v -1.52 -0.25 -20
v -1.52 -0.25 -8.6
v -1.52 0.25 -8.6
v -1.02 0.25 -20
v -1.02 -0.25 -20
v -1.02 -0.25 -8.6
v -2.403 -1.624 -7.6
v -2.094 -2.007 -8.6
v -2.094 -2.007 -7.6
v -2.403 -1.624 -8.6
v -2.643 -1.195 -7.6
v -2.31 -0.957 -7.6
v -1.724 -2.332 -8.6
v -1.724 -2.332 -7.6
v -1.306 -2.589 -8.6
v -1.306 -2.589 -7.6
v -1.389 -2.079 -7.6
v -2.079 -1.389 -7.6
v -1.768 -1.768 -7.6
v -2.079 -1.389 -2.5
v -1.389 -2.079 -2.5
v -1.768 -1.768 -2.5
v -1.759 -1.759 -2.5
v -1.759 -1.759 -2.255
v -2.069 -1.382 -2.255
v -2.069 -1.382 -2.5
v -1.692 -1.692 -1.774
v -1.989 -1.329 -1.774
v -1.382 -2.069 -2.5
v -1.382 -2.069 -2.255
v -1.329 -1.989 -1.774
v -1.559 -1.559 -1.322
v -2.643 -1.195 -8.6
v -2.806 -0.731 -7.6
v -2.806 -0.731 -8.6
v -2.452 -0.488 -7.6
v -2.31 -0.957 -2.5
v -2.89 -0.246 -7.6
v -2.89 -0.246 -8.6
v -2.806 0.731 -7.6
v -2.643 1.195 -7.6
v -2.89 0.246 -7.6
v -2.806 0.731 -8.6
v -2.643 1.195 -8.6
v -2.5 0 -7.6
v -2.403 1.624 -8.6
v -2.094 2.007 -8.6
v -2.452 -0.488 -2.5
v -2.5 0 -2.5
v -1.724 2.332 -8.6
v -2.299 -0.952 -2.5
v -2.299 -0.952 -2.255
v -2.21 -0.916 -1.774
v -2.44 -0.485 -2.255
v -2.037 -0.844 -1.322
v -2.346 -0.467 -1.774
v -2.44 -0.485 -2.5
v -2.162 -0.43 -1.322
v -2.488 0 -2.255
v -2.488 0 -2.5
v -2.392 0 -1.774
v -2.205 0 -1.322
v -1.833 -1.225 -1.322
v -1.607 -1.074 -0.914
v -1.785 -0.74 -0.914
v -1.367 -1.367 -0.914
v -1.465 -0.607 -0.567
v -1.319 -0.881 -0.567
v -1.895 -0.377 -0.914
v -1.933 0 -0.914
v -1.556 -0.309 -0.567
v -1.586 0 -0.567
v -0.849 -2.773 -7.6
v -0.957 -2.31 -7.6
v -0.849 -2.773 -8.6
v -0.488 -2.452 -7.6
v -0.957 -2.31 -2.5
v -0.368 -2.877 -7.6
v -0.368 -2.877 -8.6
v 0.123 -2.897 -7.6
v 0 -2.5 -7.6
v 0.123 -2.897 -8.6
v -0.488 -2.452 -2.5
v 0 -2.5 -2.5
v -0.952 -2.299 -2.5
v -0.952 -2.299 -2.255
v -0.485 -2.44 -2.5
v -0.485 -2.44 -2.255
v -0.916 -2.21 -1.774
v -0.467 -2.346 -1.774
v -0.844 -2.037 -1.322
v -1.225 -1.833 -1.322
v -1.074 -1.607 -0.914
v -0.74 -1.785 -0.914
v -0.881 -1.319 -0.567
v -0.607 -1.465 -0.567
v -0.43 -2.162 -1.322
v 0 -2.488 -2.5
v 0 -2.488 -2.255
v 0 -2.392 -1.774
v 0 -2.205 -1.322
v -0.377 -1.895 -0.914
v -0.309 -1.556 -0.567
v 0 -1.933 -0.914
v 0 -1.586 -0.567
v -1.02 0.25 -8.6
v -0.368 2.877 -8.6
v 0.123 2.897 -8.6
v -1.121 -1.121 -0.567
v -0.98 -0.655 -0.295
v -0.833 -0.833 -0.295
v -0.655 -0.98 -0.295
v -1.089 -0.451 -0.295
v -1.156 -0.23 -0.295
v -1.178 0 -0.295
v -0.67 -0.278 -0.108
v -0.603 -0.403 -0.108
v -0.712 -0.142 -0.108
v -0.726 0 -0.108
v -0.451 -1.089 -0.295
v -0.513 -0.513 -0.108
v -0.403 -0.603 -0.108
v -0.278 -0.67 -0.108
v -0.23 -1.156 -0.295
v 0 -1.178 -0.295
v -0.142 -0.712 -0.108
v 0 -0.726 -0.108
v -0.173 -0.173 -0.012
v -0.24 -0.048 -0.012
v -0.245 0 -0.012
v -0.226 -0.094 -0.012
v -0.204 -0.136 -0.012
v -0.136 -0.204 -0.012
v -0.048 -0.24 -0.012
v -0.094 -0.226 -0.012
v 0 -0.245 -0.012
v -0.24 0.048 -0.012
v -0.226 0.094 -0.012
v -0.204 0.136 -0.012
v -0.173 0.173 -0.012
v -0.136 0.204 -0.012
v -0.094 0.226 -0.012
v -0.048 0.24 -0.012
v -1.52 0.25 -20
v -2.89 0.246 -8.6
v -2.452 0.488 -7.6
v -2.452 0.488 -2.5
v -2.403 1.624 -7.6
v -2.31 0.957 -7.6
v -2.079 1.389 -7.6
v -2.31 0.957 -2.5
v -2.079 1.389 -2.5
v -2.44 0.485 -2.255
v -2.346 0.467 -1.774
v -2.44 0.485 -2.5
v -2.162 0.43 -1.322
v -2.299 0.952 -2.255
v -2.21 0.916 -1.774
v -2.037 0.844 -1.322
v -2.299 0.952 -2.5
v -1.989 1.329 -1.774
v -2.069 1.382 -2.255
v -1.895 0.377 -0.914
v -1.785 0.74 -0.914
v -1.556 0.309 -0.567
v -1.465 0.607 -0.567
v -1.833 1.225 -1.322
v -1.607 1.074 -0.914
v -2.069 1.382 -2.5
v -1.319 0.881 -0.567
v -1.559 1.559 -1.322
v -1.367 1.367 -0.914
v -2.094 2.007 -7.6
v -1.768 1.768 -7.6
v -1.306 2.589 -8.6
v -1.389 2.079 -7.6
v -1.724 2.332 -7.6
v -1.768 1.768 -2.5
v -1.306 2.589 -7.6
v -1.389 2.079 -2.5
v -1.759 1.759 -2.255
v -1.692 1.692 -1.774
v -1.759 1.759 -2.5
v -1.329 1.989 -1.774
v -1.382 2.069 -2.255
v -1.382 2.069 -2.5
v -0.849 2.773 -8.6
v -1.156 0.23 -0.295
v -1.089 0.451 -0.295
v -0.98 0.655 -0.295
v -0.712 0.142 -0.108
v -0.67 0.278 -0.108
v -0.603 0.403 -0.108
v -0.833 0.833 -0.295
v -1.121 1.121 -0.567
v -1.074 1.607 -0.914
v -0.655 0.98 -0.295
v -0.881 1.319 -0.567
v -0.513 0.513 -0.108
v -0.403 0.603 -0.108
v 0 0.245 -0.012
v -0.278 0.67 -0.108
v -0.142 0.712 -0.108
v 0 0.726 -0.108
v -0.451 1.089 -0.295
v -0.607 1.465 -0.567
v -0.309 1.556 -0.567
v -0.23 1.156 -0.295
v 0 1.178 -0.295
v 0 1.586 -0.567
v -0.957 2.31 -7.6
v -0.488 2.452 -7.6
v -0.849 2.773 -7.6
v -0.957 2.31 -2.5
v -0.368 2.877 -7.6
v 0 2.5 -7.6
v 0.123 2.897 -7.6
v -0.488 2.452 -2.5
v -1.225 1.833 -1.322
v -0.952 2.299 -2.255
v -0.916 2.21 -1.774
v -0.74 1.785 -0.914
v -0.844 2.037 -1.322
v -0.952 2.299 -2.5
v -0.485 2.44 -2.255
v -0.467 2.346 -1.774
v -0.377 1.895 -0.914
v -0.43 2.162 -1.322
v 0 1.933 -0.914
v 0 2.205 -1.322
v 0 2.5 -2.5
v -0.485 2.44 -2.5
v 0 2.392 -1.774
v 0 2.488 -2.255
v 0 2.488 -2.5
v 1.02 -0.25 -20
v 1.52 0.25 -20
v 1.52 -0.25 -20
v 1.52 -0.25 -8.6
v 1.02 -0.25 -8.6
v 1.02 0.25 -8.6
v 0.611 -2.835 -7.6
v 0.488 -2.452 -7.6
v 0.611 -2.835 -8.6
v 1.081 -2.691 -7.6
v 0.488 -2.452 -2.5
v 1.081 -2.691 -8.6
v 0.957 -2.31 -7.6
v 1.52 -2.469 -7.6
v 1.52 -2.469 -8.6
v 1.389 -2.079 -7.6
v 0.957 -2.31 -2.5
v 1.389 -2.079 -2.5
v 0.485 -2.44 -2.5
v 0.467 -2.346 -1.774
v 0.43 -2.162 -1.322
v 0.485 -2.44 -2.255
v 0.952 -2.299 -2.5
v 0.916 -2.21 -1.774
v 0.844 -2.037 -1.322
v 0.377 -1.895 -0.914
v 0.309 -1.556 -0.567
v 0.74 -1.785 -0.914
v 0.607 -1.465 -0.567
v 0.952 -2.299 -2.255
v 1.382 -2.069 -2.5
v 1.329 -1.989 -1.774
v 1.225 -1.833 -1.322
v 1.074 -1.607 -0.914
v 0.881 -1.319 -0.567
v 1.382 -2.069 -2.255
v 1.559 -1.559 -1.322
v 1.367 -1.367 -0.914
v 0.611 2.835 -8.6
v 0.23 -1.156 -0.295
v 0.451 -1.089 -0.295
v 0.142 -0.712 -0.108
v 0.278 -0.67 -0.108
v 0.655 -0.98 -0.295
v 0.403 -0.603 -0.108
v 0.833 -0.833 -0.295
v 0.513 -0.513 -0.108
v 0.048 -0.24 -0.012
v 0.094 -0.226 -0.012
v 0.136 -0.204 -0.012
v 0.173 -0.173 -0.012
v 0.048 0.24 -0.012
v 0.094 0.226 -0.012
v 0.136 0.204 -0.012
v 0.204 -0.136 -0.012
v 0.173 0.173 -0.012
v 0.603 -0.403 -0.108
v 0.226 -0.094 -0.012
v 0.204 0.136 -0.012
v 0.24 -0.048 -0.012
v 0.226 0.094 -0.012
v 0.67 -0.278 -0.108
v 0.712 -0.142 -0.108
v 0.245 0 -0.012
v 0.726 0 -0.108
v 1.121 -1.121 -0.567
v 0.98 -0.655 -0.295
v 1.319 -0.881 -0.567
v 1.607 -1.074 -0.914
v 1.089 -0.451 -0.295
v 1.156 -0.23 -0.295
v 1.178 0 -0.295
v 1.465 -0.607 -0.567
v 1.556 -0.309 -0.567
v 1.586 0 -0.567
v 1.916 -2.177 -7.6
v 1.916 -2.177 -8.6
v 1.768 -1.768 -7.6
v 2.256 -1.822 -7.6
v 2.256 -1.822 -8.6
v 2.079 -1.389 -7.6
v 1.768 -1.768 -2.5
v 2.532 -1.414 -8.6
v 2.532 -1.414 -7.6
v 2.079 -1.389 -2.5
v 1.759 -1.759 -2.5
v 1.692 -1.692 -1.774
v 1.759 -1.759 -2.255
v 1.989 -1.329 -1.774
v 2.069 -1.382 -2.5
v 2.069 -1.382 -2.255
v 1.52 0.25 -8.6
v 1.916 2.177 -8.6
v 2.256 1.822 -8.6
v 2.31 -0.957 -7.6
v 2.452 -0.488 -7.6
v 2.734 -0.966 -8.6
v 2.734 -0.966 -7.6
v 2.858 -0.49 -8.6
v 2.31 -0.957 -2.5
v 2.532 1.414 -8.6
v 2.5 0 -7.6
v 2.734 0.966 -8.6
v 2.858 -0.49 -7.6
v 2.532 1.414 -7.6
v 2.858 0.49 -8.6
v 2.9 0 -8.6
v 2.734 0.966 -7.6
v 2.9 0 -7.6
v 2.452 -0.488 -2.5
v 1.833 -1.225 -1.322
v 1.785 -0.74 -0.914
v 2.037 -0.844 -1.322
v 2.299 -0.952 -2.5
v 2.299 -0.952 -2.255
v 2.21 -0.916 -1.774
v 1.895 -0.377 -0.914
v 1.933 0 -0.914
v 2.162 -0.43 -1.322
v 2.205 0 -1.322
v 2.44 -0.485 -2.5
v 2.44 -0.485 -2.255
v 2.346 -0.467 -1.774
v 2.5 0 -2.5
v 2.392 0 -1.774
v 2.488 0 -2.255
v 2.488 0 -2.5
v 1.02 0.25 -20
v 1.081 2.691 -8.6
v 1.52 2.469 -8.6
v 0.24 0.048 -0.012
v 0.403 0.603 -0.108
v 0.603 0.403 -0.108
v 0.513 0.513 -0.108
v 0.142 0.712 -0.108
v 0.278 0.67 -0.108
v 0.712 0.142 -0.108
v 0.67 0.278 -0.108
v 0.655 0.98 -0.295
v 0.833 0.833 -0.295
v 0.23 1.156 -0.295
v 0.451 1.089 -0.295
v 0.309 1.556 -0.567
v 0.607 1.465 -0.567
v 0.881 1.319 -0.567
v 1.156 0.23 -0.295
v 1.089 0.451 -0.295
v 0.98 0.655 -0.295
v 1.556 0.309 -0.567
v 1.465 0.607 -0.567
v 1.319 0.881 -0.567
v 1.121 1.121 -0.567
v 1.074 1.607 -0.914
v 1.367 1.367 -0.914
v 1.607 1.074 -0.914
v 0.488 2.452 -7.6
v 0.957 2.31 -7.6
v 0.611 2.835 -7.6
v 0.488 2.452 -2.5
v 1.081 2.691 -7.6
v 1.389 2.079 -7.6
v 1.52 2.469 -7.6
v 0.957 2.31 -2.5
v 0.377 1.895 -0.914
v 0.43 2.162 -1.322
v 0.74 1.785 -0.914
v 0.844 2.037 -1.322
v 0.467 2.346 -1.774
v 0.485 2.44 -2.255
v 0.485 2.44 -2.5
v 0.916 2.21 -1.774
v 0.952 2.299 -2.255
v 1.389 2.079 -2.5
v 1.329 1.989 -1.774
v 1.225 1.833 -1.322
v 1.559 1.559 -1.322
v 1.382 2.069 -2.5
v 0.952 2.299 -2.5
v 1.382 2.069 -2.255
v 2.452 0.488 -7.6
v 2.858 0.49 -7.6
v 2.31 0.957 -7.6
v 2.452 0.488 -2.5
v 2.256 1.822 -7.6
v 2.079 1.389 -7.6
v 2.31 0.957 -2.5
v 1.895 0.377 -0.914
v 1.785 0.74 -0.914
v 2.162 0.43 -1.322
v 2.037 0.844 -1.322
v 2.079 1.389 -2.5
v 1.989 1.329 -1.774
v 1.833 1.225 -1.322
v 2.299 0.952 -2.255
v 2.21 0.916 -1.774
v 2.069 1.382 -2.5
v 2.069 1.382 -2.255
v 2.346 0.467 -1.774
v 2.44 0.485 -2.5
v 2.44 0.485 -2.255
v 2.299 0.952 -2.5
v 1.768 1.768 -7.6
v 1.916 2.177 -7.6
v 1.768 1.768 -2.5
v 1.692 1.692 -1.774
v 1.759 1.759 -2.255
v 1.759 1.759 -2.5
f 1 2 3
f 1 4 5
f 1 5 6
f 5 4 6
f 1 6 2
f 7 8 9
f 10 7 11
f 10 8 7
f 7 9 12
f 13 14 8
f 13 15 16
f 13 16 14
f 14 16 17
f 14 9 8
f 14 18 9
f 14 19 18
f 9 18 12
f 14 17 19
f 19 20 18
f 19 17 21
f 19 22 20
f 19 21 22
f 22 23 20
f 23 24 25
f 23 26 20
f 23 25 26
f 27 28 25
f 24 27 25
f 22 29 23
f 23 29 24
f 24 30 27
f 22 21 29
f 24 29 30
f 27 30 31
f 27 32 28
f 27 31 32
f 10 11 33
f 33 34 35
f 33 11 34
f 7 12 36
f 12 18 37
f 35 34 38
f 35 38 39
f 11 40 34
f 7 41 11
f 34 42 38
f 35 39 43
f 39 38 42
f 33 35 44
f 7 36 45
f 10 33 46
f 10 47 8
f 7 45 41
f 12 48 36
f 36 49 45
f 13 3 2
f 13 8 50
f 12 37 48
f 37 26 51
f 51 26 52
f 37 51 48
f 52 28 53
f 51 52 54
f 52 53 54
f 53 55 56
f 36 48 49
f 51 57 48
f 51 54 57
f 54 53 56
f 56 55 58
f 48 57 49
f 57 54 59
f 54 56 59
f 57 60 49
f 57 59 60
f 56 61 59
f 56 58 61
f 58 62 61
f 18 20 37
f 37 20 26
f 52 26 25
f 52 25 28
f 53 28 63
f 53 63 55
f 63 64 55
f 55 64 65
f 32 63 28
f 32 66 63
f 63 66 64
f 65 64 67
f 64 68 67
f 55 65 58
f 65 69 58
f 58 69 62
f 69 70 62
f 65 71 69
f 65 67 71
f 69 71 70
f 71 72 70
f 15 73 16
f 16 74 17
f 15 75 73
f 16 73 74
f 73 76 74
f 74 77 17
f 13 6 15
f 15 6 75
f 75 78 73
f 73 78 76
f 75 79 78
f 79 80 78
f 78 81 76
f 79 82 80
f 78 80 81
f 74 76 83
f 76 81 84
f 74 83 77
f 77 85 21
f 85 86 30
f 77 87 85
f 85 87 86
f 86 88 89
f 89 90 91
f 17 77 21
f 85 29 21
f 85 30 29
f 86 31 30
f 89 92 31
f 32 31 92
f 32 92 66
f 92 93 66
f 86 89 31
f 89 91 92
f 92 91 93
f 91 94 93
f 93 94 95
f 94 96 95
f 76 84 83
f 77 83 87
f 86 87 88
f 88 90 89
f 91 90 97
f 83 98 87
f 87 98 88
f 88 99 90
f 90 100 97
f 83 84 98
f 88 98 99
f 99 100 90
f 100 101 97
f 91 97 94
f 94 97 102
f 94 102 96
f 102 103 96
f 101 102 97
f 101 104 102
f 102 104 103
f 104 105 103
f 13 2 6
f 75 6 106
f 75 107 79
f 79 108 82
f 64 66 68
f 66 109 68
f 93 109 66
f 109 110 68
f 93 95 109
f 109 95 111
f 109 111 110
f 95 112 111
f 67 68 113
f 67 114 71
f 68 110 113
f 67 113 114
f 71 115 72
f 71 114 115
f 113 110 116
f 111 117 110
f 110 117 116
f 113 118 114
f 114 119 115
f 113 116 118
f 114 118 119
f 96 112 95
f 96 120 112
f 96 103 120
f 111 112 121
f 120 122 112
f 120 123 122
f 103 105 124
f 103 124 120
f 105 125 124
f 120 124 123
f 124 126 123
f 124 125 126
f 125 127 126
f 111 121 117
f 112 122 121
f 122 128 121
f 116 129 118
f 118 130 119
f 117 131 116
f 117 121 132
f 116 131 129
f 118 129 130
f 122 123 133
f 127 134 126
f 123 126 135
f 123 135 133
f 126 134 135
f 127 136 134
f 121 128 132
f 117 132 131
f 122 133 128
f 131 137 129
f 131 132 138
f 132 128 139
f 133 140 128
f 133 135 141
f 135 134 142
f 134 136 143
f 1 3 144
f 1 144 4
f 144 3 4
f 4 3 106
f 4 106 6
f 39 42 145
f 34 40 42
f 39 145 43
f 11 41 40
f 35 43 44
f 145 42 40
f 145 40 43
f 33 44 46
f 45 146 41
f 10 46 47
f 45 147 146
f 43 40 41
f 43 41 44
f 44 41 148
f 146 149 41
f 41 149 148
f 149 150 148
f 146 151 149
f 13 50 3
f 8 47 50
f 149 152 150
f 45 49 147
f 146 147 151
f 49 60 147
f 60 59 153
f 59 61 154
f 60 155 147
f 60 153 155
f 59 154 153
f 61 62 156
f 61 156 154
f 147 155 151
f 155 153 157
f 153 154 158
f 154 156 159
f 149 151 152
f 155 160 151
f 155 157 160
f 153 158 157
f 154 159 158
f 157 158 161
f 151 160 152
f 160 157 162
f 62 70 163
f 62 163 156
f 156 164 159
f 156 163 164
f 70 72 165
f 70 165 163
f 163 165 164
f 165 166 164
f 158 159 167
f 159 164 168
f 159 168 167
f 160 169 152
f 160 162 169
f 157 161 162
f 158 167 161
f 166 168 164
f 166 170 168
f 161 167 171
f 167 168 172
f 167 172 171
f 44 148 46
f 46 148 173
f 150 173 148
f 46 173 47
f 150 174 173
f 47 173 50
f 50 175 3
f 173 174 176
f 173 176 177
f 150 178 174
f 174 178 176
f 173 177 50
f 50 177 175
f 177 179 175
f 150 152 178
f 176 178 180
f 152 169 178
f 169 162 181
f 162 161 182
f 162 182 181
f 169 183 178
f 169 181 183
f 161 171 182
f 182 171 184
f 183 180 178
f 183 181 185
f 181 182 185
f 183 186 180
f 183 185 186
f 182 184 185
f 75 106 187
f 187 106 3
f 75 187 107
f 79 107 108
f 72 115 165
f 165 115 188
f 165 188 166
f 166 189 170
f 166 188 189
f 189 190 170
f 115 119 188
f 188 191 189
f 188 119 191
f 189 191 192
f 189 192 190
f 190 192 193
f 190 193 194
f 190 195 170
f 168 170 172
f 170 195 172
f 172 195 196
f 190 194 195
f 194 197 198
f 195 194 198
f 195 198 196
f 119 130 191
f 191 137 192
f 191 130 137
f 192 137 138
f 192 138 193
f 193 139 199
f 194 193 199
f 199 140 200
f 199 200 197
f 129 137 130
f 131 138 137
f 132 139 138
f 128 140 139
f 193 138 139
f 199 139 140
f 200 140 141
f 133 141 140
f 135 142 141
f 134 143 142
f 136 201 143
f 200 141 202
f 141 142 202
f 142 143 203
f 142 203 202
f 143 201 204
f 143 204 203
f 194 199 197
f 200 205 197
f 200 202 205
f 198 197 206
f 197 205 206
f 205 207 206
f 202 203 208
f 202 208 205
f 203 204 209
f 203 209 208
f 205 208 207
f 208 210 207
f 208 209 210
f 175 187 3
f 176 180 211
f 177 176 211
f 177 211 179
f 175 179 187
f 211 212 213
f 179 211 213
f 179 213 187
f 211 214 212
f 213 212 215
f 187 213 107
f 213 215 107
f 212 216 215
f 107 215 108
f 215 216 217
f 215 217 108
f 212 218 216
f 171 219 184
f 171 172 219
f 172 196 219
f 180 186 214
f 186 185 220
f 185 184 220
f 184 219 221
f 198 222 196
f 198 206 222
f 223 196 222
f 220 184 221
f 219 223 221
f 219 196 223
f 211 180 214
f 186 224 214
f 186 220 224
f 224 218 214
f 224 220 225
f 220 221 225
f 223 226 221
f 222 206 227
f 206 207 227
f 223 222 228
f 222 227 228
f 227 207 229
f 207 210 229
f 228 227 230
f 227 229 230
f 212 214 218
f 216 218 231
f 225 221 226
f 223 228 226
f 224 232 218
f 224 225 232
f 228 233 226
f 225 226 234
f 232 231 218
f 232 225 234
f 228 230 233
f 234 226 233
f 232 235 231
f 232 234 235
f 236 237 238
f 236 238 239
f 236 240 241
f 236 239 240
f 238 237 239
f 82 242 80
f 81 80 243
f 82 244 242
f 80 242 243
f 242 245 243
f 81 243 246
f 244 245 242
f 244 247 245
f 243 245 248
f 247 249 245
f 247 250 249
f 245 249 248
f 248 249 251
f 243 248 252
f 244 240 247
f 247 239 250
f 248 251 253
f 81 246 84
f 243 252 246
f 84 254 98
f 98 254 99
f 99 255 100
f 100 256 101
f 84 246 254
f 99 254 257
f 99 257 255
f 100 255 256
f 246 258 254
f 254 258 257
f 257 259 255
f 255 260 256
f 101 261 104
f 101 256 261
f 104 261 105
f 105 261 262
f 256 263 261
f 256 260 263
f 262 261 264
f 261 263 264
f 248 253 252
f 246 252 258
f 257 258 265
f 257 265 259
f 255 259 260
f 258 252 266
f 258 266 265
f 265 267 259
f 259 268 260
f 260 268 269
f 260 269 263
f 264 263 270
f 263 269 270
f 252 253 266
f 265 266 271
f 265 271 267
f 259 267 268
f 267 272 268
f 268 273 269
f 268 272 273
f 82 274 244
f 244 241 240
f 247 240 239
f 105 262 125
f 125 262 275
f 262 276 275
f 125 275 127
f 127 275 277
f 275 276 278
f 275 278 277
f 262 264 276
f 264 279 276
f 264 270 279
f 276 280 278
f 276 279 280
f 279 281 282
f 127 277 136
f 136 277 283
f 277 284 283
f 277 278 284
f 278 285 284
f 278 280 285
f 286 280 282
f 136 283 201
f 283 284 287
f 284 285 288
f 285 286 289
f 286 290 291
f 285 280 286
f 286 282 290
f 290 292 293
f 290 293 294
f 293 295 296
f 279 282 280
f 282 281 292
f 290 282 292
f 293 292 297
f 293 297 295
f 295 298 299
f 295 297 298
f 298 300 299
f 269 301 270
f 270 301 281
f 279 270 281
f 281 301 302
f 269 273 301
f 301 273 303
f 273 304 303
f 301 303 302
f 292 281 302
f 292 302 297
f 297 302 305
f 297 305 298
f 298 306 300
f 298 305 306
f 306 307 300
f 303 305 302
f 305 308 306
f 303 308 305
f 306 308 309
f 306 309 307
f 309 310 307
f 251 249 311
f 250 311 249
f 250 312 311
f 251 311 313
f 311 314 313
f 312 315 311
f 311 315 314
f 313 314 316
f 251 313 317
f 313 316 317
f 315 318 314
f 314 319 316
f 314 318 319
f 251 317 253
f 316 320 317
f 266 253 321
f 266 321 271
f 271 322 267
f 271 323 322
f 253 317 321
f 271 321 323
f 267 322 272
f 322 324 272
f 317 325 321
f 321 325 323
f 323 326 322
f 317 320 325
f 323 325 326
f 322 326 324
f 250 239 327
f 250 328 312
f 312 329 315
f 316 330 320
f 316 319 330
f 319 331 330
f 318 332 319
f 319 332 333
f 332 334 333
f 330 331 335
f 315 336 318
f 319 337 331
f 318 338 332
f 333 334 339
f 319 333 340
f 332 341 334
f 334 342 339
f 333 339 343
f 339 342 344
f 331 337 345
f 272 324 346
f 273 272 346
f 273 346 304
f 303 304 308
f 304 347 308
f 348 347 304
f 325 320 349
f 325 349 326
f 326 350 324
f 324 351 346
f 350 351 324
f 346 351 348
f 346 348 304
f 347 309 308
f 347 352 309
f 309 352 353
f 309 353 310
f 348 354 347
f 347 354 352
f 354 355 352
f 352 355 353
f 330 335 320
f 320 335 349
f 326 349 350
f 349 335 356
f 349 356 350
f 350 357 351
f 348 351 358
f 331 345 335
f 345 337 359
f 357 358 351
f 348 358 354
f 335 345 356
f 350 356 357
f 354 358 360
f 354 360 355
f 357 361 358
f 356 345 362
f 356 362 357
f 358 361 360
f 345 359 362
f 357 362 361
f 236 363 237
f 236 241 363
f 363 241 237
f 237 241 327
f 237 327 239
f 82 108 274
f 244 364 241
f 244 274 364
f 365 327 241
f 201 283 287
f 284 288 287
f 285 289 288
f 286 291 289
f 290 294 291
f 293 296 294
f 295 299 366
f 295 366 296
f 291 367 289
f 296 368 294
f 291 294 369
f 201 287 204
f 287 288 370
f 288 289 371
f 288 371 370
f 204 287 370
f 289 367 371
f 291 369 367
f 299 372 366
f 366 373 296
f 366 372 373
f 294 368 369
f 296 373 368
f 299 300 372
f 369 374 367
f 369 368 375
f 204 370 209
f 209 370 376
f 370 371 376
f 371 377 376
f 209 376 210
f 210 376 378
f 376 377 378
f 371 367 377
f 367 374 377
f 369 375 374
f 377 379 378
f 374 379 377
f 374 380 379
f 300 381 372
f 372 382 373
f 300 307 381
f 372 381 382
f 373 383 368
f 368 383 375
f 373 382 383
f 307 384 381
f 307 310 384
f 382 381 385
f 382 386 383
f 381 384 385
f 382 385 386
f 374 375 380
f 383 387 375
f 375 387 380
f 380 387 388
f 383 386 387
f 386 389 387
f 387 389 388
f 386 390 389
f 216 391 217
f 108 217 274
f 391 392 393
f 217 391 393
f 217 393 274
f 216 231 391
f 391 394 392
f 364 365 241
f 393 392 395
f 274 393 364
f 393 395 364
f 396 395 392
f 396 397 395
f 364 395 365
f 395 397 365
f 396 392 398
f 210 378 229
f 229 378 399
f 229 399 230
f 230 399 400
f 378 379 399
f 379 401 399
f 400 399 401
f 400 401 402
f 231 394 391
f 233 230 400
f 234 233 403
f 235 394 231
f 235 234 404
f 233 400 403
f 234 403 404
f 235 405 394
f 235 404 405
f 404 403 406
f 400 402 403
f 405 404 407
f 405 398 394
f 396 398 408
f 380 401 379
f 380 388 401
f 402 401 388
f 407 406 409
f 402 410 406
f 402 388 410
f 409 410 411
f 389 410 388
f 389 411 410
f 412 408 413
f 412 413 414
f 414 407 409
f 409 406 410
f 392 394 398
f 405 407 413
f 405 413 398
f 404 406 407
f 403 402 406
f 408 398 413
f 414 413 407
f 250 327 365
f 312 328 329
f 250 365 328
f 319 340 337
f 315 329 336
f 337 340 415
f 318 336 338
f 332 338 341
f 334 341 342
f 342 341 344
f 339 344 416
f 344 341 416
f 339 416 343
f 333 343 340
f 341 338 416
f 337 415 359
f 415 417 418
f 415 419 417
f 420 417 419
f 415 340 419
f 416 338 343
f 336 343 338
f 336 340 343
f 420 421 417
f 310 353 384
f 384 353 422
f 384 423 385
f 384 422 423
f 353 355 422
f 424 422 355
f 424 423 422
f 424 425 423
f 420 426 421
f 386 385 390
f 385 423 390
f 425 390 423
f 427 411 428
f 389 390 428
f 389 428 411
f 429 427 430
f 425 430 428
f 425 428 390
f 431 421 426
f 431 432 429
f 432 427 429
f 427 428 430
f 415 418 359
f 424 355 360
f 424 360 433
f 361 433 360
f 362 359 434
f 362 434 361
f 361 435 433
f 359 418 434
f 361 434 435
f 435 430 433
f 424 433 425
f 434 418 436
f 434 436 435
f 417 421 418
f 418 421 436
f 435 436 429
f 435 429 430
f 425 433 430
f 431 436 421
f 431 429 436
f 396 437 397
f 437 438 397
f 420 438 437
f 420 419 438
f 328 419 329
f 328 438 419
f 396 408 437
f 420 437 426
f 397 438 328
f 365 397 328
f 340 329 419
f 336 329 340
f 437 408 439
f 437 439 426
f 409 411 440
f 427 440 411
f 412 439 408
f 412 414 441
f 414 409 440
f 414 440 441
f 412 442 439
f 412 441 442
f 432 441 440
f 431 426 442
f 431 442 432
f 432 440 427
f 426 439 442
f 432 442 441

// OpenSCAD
// file: ../lib/lib.scad
// Shared helpers. Include AFTER params.scad (needs TOL, M3_* etc.).
$fa = 4; $fs = 0.5;

module rrect(size, r) {            // 2D rounded rectangle, centred
    r2 = min(r, min(size[0], size[1]) / 2 - 0.001);
    offset(r = r2) square([size[0] - 2 * r2, size[1] - 2 * r2], center = true);
}
module rbox(size, r, center_xy = true) {   // box with rounded vertical edges
    translate(center_xy ? [0, 0, 0] : [size[0] / 2, size[1] / 2, 0])
        linear_extrude(size[2]) rrect([size[0], size[1]], r);
}
module rbox_at(x0, x1, y0, y1, z0, z1, r = 0.01) {
    translate([(x0 + x1) / 2, (y0 + y1) / 2, z0]) rbox([x1 - x0, y1 - y0, z1 - z0], r);
}
module box_at(x0, x1, y0, y1, z0, z1) { translate([x0, y0, z0]) cube([x1 - x0, y1 - y0, z1 - z0]); }

module ring(ro, ri, h) { difference() { cylinder(r = ro, h = h); translate([0, 0, -1]) cylinder(r = ri, h = h + 2); } }
module ring_sector(ro, ri, h, a0, a1) {
    intersection() {
        ring(ro, ri, h);
        linear_extrude(h) polygon(concat([[0, 0]], [for (a = [a0 : (a1 - a0) / 24 : a1]) 2 * ro * [cos(a), sin(a)]]));
    }
}
// teardrop hole along an axis lying horizontal (axis = Y after rotation), printable w/o support
module teardrop2d(d) { union() { circle(d = d); rotate(45) square(d / 2); } }
// vertical heat-set insert hole, opening at z=0 going +z (depth l)
module insert_hole(l = M3_INSERT_L) { translate([0, 0, -EPS]) cylinder(d = M3_INSERT_D, h = l + EPS); }
module m3_clear(l) { translate([0, 0, -EPS]) cylinder(d = M3_CLEAR, h = l + 2 * EPS); }
module m3_csk(l) {  // countersunk clearance from z=0 upward, head at z=0 side
    translate([0, 0, -EPS]) { cylinder(d = M3_CLEAR, h = l + 2 * EPS); cylinder(d1 = 6.4, d2 = M3_CLEAR, h = 1.7); }
}
module card2d() { rrect([CARD_L, CARD_W], CARD_R); }
module card_at(cy, z) { translate([0, cy, z]) linear_extrude(CARD_T) card2d(); }

// ---- gears ----
function _inv(a) = tan(a) - a * PI_ / 180;           // involute function, a in deg
function _invpt(rb, r, ang0, s) = let(al = acos(rb / r), th = ang0 - s * (_inv(al) * 180 / PI_)) [r * cos(th), r * sin(th)];
module involute_gear2d(m, z, pa = 20, clearance = 0.05) {
    rp = m * z / 2; rb = rp * cos(pa); ra = rp + m - clearance; rf = rp - 1.25 * m;
    half = 90 / z + _inv(pa) * 180 / PI_;            // tooth half-angle at base (deg)
    n = 8;
    rs = [for (i = [0 : n]) max(rb, rf) + (ra - max(rb, rf)) * i / n];
    union() {
        circle(r = rf, $fn = z * 4);
        for (k = [0 : z - 1]) rotate(k * 360 / z) polygon(concat(
            [[rf * cos(-half), rf * sin(-half)]],
            [for (r = rs) let(p = _invpt(rb, r, half, 1)) [p[0], -p[1]]],
            [for (i = [n : -1 : 0]) _invpt(rb, rs[i], half, 1)],
            [[rf * cos(half), rf * sin(half)]]));
    }
}
// straight gear rack (2D in XY: teeth along +x, pointing -y, pitch line at y=0)
module gear_rack2d(m, len, back = 3) {
    p = PI_ * m; ad = m; de = 1.25 * m; t = tan(20);
    n = ceil(len / p) + 1;
    intersection() {
        union() {
            translate([0, de]) square([len, back]);
            for (i = [0 : n]) translate([i * p - p / 4, 0]) polygon([
                [-(p / 4 + de * t), de + 0.01], [p / 4 + de * t + 0.01, de + 0.01],
                [p / 4 - ad * t, -ad], [-(p / 4 - ad * t), -ad] ]);
        }
        translate([0, -ad - 1]) square([len, ad + de + back + 2]);
    }
}
// GT2 belt-tooth profile ring (teeth outward), 2D
module gt2_ring2d(n, r_land, ri) {
    union() {
        difference() { circle(r = r_land + 0.01, $fn = n * 2); circle(r = ri, $fn = n * 2); }
        for (k = [0 : n - 1]) rotate(k * 360 / n)
            translate([r_land, 0]) hull() { translate([-0.2, 0]) square([0.2, 1.0], center = true); translate([0.25, 0]) circle(r = 0.5, $fn = 12); }
    }
}
// main file
// Vendor model: 5 mm status LED in a panel bezel hole. Local: dome tip z=0, body toward -Z.
include <../params.scad>
include <../lib/lib.scad>
module vendor_led_5mm() {
    color([0.2,0.9,0.3,0.9]) { translate([0, 0, -2.5]) sphere(d = 5); translate([0, 0, -7.6]) cylinder(d = 5, h = 5.1); translate([0, 0, -8.6]) cylinder(d = 5.8, h = 1); }
    color([0.8,0.8,0.8]) for (x = [-1.27, 1.27]) translate([x - 0.25, -0.25, -20]) cube([0.5, 0.5, 11.4]);
}
vendor_led_5mm();
